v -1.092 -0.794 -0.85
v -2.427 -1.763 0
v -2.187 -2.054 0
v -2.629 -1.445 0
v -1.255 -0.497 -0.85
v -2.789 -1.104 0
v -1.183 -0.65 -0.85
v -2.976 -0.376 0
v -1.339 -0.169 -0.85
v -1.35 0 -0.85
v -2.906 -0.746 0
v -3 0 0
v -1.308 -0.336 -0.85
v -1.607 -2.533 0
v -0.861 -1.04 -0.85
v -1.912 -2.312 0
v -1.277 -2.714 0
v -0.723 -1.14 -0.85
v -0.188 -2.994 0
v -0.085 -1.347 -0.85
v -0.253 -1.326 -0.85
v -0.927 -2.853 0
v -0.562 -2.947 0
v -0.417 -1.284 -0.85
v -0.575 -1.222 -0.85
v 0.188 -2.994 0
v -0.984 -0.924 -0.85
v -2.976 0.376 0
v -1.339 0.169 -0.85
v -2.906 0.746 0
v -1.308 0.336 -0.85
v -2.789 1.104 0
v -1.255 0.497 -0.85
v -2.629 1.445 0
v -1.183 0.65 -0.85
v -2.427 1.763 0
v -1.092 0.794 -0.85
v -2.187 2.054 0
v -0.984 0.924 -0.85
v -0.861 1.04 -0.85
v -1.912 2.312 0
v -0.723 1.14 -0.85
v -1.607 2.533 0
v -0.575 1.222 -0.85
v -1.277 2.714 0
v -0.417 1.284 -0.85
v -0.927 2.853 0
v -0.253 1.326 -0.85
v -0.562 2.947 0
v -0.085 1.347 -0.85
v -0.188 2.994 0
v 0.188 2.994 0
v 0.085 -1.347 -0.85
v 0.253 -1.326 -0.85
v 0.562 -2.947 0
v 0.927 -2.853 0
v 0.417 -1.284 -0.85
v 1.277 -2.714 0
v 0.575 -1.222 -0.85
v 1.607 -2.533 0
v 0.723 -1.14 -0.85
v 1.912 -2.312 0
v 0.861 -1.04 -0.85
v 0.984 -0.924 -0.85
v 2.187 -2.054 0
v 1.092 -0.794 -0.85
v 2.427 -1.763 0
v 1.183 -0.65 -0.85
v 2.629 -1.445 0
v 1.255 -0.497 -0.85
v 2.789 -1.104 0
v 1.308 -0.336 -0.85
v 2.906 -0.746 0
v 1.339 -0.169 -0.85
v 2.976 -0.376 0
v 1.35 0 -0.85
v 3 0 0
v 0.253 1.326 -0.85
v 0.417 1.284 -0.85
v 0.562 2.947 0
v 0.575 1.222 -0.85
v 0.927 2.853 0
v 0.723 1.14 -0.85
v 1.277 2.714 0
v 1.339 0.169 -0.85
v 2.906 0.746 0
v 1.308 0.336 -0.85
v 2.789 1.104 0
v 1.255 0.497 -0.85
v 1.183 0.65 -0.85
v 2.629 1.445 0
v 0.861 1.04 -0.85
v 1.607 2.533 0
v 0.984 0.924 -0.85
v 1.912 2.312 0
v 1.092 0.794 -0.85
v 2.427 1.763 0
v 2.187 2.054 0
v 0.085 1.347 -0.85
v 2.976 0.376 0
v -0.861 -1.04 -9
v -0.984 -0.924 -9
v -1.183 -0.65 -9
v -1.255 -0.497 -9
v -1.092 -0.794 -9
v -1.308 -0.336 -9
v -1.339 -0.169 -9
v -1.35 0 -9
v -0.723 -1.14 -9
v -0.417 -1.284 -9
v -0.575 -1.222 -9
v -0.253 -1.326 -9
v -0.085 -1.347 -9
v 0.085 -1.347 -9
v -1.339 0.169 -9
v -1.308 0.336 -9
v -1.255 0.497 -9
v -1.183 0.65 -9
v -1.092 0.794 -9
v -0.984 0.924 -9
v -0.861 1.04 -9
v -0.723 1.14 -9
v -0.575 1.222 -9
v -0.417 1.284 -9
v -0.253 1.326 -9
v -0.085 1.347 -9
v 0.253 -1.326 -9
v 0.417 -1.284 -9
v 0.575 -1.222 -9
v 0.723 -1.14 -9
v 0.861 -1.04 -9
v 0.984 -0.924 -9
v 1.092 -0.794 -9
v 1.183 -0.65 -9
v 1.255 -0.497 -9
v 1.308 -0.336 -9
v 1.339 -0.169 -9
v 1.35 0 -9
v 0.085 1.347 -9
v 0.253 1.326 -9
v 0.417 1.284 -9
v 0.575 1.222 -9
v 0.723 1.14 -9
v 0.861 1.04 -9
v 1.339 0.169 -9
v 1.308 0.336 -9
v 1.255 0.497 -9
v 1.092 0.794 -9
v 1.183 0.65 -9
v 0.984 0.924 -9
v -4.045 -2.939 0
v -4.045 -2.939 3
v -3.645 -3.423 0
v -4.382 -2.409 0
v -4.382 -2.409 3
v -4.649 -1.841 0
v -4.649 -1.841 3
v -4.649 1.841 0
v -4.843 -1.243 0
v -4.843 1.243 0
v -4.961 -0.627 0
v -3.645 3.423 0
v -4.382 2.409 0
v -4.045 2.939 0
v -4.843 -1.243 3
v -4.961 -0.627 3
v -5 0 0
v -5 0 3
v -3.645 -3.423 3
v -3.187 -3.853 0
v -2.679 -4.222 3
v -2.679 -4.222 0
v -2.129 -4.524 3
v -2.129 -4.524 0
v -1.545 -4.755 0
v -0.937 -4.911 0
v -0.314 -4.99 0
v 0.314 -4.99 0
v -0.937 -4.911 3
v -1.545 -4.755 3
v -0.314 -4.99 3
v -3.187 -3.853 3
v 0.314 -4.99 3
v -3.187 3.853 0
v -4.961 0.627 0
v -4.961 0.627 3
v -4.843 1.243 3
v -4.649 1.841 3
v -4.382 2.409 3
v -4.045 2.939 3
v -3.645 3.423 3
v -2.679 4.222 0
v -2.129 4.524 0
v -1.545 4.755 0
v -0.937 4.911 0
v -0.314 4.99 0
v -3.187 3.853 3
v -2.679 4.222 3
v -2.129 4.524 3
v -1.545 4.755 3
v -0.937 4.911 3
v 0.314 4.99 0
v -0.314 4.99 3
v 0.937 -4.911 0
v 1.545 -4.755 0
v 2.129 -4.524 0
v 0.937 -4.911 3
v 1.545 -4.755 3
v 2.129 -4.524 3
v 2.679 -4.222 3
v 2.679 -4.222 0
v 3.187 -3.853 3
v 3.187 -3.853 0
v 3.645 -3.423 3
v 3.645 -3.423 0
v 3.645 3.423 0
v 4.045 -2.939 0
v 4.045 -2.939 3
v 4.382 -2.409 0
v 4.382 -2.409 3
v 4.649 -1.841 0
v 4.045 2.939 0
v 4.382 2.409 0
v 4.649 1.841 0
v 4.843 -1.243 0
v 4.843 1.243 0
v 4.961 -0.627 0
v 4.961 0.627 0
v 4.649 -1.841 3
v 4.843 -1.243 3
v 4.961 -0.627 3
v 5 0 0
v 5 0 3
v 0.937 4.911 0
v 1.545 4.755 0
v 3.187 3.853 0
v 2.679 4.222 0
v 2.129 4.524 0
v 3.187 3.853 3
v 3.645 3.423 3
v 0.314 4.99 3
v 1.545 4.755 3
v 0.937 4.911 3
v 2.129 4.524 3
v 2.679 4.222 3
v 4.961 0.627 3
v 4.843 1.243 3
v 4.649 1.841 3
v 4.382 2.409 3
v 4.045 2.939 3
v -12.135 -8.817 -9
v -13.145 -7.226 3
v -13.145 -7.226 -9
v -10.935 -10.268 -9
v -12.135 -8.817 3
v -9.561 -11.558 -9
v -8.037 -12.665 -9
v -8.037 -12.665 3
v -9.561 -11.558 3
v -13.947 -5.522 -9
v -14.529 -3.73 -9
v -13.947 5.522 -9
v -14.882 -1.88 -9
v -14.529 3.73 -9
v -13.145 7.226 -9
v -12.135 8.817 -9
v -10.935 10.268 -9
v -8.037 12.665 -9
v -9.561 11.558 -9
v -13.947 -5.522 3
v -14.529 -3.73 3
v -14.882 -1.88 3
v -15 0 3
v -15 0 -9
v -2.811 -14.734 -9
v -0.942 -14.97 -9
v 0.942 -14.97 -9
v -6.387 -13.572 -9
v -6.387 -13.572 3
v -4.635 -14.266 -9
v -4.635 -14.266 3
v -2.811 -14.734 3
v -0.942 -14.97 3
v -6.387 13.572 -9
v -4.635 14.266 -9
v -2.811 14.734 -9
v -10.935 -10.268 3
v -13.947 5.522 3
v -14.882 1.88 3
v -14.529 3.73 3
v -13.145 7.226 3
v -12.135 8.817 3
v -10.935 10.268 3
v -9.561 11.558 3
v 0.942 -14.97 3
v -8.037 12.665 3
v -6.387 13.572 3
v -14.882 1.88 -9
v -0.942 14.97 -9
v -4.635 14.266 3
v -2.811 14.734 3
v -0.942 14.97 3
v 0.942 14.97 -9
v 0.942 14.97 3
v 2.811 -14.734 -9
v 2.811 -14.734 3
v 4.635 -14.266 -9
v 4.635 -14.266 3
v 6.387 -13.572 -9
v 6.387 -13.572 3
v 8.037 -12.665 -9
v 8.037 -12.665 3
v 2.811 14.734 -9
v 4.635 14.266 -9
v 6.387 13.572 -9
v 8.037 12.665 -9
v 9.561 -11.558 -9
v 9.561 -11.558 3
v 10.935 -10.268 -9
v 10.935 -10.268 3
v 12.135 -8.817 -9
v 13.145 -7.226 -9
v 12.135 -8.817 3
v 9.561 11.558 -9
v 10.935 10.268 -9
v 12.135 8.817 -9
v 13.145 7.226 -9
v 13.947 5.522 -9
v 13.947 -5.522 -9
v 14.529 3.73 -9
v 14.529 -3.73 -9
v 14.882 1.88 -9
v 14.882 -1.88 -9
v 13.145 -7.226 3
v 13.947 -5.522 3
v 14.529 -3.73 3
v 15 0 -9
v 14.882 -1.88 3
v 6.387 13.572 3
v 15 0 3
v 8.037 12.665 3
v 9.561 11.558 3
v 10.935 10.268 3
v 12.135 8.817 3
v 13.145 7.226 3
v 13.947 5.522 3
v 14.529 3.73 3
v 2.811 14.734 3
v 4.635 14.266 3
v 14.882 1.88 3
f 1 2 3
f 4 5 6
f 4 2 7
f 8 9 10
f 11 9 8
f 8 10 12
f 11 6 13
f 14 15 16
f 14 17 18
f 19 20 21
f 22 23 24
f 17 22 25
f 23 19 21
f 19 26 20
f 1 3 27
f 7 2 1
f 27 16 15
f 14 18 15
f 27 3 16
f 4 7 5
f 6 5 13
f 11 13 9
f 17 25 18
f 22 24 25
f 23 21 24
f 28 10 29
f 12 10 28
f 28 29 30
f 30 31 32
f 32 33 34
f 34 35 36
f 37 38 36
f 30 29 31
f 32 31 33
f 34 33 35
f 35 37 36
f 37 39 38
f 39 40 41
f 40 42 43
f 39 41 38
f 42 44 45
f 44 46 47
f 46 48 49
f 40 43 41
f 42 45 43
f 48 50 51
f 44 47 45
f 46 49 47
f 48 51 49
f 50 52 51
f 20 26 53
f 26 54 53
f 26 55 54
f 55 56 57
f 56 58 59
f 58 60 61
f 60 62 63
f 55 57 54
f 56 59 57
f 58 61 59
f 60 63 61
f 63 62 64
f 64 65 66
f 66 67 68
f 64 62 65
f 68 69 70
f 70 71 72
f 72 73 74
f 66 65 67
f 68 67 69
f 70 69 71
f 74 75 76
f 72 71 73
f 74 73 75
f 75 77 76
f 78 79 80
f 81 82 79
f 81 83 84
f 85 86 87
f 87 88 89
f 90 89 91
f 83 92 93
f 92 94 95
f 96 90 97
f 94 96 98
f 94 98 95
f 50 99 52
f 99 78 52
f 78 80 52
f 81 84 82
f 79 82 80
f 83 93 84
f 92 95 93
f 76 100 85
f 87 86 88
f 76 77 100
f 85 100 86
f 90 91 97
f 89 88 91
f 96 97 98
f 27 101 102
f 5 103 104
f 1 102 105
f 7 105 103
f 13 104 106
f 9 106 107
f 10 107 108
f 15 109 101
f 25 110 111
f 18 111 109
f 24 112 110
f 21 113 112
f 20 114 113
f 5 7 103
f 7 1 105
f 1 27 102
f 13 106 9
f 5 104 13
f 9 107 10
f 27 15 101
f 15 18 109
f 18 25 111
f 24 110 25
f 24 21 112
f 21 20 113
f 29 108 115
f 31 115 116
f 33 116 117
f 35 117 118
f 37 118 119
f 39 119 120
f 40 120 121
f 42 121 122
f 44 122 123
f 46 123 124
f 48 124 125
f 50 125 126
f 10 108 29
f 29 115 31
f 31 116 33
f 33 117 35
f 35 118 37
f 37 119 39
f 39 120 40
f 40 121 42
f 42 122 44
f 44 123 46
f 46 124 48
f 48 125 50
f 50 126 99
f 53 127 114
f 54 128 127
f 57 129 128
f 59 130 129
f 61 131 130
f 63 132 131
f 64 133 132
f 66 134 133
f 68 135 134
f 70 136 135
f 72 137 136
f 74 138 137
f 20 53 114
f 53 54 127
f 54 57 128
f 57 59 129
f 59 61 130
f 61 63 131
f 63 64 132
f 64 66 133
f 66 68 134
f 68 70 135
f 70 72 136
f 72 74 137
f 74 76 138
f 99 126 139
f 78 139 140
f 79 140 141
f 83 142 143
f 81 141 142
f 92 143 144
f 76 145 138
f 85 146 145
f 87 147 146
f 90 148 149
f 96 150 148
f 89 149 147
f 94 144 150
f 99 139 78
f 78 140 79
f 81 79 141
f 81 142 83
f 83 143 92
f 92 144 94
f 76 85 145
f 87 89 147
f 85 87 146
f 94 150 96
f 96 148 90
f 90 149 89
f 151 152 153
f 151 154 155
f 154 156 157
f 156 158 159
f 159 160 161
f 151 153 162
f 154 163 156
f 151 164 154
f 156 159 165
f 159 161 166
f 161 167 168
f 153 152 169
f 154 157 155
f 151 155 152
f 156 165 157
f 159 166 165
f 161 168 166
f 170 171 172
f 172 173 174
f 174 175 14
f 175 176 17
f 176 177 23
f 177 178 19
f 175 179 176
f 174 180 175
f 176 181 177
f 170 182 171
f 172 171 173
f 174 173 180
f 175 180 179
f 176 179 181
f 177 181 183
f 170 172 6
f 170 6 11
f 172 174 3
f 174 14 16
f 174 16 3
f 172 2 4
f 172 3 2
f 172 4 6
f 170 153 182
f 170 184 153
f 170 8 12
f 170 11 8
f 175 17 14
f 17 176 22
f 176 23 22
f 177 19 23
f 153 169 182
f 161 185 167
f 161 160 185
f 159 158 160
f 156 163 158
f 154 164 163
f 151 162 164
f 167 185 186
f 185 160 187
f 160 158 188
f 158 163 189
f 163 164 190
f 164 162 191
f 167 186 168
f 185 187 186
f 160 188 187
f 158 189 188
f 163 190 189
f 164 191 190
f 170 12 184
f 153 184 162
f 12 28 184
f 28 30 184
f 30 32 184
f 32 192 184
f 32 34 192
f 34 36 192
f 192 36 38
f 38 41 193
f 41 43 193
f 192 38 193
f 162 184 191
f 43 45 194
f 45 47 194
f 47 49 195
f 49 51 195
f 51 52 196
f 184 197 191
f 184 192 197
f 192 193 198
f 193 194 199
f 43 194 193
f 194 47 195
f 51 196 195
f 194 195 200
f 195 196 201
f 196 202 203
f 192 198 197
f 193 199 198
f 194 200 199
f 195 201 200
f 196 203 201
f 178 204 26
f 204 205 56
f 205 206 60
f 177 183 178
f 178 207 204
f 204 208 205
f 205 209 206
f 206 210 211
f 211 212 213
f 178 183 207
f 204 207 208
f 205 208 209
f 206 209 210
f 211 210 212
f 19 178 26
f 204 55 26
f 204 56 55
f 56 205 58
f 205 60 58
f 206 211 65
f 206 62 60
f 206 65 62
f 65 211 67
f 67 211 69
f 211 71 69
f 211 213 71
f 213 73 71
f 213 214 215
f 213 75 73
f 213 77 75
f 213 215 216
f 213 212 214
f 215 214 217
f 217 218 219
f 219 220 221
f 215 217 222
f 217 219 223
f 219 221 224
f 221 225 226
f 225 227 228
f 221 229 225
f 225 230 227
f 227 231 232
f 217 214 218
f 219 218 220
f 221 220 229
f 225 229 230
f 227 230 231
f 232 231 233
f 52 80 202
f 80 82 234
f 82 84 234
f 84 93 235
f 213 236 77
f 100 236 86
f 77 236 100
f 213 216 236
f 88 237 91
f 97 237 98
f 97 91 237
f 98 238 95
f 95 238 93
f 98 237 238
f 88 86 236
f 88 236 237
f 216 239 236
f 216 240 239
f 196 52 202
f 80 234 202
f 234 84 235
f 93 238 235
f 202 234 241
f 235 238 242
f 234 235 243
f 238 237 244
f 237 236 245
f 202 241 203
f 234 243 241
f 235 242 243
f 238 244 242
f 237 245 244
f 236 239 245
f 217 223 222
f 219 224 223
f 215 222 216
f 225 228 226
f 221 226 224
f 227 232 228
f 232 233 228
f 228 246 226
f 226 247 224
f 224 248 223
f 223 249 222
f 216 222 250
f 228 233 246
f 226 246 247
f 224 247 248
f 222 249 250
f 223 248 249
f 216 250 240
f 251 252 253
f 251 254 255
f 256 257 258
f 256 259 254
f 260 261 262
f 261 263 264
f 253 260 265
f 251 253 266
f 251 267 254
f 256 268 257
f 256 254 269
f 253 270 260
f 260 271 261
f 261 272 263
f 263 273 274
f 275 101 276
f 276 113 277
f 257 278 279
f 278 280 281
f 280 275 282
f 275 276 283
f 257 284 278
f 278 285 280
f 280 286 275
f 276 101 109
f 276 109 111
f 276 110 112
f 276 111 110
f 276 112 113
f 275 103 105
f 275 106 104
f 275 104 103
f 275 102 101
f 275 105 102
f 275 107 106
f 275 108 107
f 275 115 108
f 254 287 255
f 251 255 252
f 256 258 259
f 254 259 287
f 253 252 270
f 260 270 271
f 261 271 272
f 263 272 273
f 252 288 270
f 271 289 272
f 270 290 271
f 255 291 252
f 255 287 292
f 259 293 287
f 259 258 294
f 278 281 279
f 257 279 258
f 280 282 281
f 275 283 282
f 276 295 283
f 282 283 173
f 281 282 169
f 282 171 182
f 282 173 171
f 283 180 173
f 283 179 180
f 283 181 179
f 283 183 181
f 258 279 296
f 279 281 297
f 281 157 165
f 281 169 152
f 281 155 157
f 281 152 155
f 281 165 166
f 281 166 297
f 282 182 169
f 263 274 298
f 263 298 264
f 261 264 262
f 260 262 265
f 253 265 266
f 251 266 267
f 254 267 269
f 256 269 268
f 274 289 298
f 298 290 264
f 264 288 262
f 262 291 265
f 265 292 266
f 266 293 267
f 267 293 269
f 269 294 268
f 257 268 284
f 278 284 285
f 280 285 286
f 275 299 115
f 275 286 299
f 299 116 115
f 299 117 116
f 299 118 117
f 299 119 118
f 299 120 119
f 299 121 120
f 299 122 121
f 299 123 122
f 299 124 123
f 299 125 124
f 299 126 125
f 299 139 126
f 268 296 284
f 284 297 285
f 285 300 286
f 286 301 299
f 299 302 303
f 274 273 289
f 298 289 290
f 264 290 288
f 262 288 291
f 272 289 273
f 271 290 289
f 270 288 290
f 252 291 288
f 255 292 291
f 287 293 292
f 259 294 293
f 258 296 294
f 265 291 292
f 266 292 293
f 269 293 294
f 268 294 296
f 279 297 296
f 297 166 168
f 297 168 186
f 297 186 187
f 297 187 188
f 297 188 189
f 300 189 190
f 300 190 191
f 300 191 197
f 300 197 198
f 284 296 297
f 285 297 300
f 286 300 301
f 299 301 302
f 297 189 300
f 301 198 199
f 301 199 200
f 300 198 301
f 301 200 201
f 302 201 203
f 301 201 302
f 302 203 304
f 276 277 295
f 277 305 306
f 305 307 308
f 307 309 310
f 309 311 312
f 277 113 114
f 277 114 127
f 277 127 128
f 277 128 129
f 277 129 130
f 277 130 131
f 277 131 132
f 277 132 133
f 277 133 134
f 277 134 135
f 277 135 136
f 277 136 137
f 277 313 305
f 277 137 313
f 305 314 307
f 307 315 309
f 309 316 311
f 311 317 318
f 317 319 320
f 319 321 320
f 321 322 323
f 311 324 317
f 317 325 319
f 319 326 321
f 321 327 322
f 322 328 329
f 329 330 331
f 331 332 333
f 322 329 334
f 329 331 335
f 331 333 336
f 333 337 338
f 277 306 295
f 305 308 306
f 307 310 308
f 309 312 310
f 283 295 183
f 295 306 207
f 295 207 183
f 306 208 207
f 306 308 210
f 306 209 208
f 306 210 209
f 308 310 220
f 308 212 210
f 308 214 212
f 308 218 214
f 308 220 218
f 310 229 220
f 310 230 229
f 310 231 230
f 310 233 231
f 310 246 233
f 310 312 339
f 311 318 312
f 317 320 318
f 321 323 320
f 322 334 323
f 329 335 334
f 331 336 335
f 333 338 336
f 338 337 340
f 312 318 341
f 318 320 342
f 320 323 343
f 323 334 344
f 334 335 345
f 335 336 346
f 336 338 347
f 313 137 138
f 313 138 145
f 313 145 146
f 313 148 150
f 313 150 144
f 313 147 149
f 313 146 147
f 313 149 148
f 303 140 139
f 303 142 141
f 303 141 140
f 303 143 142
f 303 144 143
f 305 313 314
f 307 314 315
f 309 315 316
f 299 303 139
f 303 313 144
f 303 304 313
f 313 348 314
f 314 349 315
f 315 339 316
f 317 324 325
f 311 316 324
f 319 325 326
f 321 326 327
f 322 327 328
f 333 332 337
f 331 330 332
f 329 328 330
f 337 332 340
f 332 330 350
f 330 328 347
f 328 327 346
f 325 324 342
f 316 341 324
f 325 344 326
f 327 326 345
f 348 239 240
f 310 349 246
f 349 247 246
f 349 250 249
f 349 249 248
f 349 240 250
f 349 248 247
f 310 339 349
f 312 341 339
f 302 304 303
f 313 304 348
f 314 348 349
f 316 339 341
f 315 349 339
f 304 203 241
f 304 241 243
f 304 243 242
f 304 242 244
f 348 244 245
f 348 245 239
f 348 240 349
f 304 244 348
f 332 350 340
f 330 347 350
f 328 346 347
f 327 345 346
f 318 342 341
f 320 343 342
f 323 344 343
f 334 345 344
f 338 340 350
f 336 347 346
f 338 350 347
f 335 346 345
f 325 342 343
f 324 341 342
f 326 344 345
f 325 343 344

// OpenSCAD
$fn = 50;

difference() {
	union() {
		translate(v = [0, 0, -9.0]) {
			cylinder(h = 12, r = 15.0);
		}
	}
	union() {
		translate(v = [0, 0, 0]) {
			rotate(a = [0, 0, 0]) {
				difference() {
					union() {
						translate(v = [0, 0, -12.0]) {
							cylinder(h = 12, r = 1.0);
						}
						translate(v = [0, 0, -0.85]) {
							cylinder(h = 0.85, r1 = 1.35, r2 = 3.0);
						}
						translate(v = [0, 0, -12.0]) {
							cylinder(h = 12, r = 1.35);
						}
						translate(v = [0, 0, -12.0]) {
							cylinder(h = 12, r = 1.0);
						}
					}
					union();
				}
			}
		}
		#cylinder(h = 3, r = 5.0);
	}
}
